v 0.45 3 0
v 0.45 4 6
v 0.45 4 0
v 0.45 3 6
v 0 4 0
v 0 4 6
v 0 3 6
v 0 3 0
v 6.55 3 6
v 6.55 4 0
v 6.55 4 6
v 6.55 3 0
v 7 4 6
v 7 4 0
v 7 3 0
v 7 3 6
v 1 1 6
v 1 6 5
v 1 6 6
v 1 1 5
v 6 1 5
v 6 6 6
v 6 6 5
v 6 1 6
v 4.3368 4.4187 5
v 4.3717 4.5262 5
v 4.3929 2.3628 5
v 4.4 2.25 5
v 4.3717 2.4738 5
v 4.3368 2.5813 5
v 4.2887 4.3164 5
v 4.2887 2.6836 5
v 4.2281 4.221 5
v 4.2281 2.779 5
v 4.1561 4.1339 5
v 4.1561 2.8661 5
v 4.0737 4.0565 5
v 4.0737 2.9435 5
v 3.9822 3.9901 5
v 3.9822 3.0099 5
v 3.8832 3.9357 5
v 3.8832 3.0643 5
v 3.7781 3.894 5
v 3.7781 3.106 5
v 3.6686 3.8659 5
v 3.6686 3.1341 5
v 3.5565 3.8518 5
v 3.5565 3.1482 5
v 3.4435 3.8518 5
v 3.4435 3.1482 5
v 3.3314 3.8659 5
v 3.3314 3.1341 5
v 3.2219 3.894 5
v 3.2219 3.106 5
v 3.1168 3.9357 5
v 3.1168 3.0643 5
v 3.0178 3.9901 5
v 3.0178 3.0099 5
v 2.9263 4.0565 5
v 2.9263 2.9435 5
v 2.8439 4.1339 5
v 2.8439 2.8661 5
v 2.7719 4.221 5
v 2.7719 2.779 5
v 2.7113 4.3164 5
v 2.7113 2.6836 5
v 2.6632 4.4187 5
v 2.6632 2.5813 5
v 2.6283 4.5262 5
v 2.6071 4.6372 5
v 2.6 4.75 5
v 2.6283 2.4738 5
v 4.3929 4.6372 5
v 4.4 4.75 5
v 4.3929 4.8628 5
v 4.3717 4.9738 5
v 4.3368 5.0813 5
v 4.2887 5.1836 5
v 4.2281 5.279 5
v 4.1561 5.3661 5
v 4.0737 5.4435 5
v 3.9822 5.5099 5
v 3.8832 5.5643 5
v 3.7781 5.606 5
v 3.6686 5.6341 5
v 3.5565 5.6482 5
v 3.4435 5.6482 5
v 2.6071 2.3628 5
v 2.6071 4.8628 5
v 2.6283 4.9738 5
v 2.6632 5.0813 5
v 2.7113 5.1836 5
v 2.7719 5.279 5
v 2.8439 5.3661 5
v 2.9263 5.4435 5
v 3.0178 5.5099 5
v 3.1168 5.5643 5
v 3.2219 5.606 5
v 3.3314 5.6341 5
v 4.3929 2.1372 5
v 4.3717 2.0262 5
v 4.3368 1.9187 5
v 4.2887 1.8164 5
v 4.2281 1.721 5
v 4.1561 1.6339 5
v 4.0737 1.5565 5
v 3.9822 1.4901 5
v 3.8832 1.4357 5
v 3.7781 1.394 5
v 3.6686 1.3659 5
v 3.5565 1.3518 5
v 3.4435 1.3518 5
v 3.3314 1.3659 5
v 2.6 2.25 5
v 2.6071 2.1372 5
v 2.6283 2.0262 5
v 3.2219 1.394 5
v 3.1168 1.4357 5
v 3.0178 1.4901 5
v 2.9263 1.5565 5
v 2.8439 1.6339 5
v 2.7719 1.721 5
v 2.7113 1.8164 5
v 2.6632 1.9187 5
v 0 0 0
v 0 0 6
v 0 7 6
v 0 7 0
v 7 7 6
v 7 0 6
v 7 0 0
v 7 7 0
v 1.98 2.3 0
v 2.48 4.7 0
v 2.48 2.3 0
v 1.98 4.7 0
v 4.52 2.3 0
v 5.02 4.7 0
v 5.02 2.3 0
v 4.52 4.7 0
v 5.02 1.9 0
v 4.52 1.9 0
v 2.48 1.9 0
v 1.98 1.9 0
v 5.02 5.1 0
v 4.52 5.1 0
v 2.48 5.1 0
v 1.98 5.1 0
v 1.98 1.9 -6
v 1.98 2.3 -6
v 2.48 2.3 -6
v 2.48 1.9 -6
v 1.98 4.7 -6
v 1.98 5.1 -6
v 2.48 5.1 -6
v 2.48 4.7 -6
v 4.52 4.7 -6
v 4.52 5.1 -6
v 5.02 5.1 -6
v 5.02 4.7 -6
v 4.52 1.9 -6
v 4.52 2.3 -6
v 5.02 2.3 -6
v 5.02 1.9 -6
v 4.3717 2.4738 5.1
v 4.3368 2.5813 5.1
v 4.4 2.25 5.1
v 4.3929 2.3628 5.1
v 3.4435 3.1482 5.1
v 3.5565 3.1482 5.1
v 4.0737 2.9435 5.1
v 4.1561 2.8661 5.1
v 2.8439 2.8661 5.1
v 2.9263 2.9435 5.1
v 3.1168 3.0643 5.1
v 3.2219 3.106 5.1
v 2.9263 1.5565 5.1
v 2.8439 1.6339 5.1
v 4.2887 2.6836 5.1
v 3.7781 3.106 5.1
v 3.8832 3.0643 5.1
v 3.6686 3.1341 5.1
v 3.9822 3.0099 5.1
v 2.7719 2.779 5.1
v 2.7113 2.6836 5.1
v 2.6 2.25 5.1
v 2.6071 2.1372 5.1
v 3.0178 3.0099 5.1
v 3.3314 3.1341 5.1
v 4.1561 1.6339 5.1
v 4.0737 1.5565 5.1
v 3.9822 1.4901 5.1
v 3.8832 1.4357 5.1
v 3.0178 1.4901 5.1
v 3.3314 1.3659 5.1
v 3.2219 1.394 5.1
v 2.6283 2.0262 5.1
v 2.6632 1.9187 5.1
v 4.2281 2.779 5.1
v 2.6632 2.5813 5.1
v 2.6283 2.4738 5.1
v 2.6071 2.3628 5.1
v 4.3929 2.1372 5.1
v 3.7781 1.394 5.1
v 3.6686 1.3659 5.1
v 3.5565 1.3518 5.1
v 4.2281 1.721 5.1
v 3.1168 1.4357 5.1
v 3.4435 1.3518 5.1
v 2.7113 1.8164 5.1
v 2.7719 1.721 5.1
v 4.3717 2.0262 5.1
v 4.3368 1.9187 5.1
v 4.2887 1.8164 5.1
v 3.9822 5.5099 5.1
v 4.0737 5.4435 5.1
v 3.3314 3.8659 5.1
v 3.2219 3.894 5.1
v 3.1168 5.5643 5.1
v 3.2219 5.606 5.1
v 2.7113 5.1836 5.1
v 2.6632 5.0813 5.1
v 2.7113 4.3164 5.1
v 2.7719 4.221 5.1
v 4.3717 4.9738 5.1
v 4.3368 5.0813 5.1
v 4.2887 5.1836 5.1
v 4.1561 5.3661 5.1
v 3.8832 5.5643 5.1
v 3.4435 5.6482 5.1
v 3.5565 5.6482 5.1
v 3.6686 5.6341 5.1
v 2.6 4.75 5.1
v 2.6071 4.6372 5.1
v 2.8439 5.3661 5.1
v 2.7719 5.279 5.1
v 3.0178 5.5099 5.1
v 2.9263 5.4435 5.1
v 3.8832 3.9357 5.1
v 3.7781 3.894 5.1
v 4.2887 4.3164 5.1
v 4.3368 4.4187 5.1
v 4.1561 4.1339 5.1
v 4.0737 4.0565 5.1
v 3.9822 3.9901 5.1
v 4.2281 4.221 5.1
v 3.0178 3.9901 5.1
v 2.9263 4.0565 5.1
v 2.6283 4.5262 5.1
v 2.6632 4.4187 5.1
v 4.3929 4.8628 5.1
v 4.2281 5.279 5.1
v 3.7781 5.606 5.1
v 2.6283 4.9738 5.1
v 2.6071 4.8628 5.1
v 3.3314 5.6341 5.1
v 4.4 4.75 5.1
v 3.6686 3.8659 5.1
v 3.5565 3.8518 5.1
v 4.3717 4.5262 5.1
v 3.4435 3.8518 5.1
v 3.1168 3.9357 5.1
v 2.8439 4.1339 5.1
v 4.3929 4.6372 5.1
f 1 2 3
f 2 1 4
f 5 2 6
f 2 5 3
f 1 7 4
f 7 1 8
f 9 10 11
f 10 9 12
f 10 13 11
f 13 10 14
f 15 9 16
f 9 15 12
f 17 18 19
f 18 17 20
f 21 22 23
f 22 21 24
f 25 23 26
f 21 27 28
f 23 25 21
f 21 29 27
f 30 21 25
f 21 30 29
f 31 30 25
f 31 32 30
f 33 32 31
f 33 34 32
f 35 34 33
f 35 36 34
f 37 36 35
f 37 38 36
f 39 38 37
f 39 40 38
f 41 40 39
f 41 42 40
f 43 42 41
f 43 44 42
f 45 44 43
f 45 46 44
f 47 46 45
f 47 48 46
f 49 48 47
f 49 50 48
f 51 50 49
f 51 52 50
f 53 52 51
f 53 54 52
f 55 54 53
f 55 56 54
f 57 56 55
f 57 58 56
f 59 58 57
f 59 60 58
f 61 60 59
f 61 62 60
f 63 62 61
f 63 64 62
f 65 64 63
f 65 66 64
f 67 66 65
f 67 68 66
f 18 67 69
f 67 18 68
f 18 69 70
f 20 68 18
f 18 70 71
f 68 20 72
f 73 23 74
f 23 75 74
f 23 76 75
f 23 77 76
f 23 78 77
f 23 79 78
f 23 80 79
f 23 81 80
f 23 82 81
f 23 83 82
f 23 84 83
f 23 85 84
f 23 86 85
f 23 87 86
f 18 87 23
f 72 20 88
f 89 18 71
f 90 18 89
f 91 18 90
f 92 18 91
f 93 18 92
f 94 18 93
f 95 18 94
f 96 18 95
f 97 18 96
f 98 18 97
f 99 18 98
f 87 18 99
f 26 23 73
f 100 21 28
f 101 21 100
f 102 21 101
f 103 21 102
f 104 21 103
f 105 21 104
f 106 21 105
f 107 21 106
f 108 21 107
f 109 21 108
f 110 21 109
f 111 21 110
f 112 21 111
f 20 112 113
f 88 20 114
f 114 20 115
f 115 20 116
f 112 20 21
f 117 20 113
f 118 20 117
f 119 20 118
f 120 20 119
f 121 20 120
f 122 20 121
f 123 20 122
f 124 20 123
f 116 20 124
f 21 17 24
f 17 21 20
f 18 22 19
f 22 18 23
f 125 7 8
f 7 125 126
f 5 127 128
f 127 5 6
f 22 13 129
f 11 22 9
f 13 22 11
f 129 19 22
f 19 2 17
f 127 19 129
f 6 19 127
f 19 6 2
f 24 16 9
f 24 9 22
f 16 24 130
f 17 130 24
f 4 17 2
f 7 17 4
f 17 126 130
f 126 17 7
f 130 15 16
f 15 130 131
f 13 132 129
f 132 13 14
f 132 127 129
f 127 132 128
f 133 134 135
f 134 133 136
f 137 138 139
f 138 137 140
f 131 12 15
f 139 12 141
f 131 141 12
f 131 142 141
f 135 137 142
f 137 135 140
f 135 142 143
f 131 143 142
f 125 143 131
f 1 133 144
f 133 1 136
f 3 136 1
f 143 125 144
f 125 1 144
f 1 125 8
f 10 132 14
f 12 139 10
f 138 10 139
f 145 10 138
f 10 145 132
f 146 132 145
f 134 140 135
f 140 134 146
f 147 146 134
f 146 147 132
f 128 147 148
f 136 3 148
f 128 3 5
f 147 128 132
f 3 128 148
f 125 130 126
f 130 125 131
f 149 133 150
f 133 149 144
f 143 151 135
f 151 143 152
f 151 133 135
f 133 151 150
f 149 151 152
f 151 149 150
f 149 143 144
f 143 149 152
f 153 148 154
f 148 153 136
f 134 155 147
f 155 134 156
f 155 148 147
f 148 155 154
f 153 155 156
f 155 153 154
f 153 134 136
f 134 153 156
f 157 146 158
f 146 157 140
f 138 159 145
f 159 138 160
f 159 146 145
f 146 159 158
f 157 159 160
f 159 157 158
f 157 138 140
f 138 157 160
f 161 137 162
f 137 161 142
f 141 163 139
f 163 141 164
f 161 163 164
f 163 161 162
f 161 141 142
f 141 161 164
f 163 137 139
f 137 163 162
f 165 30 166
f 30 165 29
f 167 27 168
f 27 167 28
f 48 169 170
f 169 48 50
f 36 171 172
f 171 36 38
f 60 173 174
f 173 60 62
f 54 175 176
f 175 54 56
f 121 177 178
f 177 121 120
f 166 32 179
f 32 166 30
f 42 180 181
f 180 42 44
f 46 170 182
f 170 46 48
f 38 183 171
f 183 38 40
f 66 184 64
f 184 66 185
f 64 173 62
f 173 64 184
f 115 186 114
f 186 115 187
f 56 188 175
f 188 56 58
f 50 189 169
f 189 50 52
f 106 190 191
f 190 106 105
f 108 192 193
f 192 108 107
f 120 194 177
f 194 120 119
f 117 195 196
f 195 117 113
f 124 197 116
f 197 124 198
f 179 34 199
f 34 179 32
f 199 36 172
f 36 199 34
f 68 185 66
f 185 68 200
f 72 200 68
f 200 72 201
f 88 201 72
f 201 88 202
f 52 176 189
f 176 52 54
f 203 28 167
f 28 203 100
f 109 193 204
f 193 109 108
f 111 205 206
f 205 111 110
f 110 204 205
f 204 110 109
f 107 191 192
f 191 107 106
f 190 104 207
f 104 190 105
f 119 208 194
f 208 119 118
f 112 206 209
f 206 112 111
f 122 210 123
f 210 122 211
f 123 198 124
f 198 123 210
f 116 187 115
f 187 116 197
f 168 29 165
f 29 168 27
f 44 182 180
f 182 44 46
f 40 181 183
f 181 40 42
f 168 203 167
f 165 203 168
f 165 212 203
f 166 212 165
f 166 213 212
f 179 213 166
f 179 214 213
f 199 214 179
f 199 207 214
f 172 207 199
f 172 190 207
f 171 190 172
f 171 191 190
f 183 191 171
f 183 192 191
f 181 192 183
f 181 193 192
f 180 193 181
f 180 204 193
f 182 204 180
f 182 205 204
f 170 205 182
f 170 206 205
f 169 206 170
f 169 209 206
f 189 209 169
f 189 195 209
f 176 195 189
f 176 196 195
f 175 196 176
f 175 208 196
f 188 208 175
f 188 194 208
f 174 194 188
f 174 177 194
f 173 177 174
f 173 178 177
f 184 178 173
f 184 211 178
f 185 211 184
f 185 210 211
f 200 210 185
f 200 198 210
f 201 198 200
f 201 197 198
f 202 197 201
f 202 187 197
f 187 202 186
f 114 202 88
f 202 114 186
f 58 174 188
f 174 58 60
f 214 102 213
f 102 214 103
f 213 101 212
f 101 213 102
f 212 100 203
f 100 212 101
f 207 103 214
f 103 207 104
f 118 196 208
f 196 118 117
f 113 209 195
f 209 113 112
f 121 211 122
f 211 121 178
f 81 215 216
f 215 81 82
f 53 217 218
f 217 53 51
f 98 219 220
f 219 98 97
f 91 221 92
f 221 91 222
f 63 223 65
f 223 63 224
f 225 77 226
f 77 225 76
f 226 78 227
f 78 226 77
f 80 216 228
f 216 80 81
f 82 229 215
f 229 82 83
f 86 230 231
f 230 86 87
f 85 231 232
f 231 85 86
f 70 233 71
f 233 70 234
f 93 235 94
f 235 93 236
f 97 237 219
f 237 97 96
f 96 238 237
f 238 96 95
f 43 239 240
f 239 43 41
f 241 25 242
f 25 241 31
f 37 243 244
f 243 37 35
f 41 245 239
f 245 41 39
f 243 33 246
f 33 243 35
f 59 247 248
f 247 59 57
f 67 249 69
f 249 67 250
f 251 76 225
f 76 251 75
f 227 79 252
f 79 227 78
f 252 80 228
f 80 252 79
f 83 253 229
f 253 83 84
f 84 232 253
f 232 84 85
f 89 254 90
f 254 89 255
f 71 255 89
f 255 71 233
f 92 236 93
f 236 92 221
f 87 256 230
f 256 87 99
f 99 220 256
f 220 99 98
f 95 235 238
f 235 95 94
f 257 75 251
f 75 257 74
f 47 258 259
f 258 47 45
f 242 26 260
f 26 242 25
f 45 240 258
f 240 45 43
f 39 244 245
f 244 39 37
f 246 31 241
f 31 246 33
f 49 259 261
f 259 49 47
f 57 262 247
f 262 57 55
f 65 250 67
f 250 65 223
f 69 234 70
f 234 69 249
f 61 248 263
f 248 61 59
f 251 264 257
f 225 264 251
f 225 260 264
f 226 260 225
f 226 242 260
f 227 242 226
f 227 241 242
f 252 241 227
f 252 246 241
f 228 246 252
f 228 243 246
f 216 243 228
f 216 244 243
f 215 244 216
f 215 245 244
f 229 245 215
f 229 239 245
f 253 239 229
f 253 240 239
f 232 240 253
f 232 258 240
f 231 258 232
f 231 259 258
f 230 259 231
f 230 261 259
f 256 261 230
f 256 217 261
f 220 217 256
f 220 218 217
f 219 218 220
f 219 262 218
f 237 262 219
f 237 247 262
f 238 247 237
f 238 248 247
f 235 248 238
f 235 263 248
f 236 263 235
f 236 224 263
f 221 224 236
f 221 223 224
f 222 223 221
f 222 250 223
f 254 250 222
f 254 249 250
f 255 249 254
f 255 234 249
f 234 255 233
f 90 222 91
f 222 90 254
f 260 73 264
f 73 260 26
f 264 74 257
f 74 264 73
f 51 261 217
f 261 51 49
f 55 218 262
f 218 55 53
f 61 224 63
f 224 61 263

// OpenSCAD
$fn=50;

module CNY70(){
	difference(){
		color("midnightBlue")cube([7,7,6]);
		color("midnightBlue")union(){
			translate([-0.1,3,-0.1])cube([1.1/2,1,6.2]);
			translate([7.1-1.1/2,3,-0.1])cube([1.1/2,1,6.2]);
			translate([1,1,5])cube([5,5,1.1]);
		}
	}
    //pattes
	translate([(7-3.04)/2,(7-3.2)/2,0]){
		color("khaki"){
            translate([0,0,-6])cube([0.5,0.4,6]);
            translate([0,2.8,-6])cube([0.5,0.4,6]);
            translate([2.54,2.8,-6])cube([0.5,0.4,6]);
            translate([2.54,0,-6])cube([0.5,0.4,6]);
		}
	}
    // émetteur
	color("black")translate([3.5,3.5-1.8/2-(2.5-1.8)/2,5])cylinder(d=1.8,h=0.1); 
    // capteur
	color("silver")translate([3.5,3.5+1.8/2+(2.5-1.8)/2,5])cylinder(d=1.8,h=0.1);		
}

CNY70();
